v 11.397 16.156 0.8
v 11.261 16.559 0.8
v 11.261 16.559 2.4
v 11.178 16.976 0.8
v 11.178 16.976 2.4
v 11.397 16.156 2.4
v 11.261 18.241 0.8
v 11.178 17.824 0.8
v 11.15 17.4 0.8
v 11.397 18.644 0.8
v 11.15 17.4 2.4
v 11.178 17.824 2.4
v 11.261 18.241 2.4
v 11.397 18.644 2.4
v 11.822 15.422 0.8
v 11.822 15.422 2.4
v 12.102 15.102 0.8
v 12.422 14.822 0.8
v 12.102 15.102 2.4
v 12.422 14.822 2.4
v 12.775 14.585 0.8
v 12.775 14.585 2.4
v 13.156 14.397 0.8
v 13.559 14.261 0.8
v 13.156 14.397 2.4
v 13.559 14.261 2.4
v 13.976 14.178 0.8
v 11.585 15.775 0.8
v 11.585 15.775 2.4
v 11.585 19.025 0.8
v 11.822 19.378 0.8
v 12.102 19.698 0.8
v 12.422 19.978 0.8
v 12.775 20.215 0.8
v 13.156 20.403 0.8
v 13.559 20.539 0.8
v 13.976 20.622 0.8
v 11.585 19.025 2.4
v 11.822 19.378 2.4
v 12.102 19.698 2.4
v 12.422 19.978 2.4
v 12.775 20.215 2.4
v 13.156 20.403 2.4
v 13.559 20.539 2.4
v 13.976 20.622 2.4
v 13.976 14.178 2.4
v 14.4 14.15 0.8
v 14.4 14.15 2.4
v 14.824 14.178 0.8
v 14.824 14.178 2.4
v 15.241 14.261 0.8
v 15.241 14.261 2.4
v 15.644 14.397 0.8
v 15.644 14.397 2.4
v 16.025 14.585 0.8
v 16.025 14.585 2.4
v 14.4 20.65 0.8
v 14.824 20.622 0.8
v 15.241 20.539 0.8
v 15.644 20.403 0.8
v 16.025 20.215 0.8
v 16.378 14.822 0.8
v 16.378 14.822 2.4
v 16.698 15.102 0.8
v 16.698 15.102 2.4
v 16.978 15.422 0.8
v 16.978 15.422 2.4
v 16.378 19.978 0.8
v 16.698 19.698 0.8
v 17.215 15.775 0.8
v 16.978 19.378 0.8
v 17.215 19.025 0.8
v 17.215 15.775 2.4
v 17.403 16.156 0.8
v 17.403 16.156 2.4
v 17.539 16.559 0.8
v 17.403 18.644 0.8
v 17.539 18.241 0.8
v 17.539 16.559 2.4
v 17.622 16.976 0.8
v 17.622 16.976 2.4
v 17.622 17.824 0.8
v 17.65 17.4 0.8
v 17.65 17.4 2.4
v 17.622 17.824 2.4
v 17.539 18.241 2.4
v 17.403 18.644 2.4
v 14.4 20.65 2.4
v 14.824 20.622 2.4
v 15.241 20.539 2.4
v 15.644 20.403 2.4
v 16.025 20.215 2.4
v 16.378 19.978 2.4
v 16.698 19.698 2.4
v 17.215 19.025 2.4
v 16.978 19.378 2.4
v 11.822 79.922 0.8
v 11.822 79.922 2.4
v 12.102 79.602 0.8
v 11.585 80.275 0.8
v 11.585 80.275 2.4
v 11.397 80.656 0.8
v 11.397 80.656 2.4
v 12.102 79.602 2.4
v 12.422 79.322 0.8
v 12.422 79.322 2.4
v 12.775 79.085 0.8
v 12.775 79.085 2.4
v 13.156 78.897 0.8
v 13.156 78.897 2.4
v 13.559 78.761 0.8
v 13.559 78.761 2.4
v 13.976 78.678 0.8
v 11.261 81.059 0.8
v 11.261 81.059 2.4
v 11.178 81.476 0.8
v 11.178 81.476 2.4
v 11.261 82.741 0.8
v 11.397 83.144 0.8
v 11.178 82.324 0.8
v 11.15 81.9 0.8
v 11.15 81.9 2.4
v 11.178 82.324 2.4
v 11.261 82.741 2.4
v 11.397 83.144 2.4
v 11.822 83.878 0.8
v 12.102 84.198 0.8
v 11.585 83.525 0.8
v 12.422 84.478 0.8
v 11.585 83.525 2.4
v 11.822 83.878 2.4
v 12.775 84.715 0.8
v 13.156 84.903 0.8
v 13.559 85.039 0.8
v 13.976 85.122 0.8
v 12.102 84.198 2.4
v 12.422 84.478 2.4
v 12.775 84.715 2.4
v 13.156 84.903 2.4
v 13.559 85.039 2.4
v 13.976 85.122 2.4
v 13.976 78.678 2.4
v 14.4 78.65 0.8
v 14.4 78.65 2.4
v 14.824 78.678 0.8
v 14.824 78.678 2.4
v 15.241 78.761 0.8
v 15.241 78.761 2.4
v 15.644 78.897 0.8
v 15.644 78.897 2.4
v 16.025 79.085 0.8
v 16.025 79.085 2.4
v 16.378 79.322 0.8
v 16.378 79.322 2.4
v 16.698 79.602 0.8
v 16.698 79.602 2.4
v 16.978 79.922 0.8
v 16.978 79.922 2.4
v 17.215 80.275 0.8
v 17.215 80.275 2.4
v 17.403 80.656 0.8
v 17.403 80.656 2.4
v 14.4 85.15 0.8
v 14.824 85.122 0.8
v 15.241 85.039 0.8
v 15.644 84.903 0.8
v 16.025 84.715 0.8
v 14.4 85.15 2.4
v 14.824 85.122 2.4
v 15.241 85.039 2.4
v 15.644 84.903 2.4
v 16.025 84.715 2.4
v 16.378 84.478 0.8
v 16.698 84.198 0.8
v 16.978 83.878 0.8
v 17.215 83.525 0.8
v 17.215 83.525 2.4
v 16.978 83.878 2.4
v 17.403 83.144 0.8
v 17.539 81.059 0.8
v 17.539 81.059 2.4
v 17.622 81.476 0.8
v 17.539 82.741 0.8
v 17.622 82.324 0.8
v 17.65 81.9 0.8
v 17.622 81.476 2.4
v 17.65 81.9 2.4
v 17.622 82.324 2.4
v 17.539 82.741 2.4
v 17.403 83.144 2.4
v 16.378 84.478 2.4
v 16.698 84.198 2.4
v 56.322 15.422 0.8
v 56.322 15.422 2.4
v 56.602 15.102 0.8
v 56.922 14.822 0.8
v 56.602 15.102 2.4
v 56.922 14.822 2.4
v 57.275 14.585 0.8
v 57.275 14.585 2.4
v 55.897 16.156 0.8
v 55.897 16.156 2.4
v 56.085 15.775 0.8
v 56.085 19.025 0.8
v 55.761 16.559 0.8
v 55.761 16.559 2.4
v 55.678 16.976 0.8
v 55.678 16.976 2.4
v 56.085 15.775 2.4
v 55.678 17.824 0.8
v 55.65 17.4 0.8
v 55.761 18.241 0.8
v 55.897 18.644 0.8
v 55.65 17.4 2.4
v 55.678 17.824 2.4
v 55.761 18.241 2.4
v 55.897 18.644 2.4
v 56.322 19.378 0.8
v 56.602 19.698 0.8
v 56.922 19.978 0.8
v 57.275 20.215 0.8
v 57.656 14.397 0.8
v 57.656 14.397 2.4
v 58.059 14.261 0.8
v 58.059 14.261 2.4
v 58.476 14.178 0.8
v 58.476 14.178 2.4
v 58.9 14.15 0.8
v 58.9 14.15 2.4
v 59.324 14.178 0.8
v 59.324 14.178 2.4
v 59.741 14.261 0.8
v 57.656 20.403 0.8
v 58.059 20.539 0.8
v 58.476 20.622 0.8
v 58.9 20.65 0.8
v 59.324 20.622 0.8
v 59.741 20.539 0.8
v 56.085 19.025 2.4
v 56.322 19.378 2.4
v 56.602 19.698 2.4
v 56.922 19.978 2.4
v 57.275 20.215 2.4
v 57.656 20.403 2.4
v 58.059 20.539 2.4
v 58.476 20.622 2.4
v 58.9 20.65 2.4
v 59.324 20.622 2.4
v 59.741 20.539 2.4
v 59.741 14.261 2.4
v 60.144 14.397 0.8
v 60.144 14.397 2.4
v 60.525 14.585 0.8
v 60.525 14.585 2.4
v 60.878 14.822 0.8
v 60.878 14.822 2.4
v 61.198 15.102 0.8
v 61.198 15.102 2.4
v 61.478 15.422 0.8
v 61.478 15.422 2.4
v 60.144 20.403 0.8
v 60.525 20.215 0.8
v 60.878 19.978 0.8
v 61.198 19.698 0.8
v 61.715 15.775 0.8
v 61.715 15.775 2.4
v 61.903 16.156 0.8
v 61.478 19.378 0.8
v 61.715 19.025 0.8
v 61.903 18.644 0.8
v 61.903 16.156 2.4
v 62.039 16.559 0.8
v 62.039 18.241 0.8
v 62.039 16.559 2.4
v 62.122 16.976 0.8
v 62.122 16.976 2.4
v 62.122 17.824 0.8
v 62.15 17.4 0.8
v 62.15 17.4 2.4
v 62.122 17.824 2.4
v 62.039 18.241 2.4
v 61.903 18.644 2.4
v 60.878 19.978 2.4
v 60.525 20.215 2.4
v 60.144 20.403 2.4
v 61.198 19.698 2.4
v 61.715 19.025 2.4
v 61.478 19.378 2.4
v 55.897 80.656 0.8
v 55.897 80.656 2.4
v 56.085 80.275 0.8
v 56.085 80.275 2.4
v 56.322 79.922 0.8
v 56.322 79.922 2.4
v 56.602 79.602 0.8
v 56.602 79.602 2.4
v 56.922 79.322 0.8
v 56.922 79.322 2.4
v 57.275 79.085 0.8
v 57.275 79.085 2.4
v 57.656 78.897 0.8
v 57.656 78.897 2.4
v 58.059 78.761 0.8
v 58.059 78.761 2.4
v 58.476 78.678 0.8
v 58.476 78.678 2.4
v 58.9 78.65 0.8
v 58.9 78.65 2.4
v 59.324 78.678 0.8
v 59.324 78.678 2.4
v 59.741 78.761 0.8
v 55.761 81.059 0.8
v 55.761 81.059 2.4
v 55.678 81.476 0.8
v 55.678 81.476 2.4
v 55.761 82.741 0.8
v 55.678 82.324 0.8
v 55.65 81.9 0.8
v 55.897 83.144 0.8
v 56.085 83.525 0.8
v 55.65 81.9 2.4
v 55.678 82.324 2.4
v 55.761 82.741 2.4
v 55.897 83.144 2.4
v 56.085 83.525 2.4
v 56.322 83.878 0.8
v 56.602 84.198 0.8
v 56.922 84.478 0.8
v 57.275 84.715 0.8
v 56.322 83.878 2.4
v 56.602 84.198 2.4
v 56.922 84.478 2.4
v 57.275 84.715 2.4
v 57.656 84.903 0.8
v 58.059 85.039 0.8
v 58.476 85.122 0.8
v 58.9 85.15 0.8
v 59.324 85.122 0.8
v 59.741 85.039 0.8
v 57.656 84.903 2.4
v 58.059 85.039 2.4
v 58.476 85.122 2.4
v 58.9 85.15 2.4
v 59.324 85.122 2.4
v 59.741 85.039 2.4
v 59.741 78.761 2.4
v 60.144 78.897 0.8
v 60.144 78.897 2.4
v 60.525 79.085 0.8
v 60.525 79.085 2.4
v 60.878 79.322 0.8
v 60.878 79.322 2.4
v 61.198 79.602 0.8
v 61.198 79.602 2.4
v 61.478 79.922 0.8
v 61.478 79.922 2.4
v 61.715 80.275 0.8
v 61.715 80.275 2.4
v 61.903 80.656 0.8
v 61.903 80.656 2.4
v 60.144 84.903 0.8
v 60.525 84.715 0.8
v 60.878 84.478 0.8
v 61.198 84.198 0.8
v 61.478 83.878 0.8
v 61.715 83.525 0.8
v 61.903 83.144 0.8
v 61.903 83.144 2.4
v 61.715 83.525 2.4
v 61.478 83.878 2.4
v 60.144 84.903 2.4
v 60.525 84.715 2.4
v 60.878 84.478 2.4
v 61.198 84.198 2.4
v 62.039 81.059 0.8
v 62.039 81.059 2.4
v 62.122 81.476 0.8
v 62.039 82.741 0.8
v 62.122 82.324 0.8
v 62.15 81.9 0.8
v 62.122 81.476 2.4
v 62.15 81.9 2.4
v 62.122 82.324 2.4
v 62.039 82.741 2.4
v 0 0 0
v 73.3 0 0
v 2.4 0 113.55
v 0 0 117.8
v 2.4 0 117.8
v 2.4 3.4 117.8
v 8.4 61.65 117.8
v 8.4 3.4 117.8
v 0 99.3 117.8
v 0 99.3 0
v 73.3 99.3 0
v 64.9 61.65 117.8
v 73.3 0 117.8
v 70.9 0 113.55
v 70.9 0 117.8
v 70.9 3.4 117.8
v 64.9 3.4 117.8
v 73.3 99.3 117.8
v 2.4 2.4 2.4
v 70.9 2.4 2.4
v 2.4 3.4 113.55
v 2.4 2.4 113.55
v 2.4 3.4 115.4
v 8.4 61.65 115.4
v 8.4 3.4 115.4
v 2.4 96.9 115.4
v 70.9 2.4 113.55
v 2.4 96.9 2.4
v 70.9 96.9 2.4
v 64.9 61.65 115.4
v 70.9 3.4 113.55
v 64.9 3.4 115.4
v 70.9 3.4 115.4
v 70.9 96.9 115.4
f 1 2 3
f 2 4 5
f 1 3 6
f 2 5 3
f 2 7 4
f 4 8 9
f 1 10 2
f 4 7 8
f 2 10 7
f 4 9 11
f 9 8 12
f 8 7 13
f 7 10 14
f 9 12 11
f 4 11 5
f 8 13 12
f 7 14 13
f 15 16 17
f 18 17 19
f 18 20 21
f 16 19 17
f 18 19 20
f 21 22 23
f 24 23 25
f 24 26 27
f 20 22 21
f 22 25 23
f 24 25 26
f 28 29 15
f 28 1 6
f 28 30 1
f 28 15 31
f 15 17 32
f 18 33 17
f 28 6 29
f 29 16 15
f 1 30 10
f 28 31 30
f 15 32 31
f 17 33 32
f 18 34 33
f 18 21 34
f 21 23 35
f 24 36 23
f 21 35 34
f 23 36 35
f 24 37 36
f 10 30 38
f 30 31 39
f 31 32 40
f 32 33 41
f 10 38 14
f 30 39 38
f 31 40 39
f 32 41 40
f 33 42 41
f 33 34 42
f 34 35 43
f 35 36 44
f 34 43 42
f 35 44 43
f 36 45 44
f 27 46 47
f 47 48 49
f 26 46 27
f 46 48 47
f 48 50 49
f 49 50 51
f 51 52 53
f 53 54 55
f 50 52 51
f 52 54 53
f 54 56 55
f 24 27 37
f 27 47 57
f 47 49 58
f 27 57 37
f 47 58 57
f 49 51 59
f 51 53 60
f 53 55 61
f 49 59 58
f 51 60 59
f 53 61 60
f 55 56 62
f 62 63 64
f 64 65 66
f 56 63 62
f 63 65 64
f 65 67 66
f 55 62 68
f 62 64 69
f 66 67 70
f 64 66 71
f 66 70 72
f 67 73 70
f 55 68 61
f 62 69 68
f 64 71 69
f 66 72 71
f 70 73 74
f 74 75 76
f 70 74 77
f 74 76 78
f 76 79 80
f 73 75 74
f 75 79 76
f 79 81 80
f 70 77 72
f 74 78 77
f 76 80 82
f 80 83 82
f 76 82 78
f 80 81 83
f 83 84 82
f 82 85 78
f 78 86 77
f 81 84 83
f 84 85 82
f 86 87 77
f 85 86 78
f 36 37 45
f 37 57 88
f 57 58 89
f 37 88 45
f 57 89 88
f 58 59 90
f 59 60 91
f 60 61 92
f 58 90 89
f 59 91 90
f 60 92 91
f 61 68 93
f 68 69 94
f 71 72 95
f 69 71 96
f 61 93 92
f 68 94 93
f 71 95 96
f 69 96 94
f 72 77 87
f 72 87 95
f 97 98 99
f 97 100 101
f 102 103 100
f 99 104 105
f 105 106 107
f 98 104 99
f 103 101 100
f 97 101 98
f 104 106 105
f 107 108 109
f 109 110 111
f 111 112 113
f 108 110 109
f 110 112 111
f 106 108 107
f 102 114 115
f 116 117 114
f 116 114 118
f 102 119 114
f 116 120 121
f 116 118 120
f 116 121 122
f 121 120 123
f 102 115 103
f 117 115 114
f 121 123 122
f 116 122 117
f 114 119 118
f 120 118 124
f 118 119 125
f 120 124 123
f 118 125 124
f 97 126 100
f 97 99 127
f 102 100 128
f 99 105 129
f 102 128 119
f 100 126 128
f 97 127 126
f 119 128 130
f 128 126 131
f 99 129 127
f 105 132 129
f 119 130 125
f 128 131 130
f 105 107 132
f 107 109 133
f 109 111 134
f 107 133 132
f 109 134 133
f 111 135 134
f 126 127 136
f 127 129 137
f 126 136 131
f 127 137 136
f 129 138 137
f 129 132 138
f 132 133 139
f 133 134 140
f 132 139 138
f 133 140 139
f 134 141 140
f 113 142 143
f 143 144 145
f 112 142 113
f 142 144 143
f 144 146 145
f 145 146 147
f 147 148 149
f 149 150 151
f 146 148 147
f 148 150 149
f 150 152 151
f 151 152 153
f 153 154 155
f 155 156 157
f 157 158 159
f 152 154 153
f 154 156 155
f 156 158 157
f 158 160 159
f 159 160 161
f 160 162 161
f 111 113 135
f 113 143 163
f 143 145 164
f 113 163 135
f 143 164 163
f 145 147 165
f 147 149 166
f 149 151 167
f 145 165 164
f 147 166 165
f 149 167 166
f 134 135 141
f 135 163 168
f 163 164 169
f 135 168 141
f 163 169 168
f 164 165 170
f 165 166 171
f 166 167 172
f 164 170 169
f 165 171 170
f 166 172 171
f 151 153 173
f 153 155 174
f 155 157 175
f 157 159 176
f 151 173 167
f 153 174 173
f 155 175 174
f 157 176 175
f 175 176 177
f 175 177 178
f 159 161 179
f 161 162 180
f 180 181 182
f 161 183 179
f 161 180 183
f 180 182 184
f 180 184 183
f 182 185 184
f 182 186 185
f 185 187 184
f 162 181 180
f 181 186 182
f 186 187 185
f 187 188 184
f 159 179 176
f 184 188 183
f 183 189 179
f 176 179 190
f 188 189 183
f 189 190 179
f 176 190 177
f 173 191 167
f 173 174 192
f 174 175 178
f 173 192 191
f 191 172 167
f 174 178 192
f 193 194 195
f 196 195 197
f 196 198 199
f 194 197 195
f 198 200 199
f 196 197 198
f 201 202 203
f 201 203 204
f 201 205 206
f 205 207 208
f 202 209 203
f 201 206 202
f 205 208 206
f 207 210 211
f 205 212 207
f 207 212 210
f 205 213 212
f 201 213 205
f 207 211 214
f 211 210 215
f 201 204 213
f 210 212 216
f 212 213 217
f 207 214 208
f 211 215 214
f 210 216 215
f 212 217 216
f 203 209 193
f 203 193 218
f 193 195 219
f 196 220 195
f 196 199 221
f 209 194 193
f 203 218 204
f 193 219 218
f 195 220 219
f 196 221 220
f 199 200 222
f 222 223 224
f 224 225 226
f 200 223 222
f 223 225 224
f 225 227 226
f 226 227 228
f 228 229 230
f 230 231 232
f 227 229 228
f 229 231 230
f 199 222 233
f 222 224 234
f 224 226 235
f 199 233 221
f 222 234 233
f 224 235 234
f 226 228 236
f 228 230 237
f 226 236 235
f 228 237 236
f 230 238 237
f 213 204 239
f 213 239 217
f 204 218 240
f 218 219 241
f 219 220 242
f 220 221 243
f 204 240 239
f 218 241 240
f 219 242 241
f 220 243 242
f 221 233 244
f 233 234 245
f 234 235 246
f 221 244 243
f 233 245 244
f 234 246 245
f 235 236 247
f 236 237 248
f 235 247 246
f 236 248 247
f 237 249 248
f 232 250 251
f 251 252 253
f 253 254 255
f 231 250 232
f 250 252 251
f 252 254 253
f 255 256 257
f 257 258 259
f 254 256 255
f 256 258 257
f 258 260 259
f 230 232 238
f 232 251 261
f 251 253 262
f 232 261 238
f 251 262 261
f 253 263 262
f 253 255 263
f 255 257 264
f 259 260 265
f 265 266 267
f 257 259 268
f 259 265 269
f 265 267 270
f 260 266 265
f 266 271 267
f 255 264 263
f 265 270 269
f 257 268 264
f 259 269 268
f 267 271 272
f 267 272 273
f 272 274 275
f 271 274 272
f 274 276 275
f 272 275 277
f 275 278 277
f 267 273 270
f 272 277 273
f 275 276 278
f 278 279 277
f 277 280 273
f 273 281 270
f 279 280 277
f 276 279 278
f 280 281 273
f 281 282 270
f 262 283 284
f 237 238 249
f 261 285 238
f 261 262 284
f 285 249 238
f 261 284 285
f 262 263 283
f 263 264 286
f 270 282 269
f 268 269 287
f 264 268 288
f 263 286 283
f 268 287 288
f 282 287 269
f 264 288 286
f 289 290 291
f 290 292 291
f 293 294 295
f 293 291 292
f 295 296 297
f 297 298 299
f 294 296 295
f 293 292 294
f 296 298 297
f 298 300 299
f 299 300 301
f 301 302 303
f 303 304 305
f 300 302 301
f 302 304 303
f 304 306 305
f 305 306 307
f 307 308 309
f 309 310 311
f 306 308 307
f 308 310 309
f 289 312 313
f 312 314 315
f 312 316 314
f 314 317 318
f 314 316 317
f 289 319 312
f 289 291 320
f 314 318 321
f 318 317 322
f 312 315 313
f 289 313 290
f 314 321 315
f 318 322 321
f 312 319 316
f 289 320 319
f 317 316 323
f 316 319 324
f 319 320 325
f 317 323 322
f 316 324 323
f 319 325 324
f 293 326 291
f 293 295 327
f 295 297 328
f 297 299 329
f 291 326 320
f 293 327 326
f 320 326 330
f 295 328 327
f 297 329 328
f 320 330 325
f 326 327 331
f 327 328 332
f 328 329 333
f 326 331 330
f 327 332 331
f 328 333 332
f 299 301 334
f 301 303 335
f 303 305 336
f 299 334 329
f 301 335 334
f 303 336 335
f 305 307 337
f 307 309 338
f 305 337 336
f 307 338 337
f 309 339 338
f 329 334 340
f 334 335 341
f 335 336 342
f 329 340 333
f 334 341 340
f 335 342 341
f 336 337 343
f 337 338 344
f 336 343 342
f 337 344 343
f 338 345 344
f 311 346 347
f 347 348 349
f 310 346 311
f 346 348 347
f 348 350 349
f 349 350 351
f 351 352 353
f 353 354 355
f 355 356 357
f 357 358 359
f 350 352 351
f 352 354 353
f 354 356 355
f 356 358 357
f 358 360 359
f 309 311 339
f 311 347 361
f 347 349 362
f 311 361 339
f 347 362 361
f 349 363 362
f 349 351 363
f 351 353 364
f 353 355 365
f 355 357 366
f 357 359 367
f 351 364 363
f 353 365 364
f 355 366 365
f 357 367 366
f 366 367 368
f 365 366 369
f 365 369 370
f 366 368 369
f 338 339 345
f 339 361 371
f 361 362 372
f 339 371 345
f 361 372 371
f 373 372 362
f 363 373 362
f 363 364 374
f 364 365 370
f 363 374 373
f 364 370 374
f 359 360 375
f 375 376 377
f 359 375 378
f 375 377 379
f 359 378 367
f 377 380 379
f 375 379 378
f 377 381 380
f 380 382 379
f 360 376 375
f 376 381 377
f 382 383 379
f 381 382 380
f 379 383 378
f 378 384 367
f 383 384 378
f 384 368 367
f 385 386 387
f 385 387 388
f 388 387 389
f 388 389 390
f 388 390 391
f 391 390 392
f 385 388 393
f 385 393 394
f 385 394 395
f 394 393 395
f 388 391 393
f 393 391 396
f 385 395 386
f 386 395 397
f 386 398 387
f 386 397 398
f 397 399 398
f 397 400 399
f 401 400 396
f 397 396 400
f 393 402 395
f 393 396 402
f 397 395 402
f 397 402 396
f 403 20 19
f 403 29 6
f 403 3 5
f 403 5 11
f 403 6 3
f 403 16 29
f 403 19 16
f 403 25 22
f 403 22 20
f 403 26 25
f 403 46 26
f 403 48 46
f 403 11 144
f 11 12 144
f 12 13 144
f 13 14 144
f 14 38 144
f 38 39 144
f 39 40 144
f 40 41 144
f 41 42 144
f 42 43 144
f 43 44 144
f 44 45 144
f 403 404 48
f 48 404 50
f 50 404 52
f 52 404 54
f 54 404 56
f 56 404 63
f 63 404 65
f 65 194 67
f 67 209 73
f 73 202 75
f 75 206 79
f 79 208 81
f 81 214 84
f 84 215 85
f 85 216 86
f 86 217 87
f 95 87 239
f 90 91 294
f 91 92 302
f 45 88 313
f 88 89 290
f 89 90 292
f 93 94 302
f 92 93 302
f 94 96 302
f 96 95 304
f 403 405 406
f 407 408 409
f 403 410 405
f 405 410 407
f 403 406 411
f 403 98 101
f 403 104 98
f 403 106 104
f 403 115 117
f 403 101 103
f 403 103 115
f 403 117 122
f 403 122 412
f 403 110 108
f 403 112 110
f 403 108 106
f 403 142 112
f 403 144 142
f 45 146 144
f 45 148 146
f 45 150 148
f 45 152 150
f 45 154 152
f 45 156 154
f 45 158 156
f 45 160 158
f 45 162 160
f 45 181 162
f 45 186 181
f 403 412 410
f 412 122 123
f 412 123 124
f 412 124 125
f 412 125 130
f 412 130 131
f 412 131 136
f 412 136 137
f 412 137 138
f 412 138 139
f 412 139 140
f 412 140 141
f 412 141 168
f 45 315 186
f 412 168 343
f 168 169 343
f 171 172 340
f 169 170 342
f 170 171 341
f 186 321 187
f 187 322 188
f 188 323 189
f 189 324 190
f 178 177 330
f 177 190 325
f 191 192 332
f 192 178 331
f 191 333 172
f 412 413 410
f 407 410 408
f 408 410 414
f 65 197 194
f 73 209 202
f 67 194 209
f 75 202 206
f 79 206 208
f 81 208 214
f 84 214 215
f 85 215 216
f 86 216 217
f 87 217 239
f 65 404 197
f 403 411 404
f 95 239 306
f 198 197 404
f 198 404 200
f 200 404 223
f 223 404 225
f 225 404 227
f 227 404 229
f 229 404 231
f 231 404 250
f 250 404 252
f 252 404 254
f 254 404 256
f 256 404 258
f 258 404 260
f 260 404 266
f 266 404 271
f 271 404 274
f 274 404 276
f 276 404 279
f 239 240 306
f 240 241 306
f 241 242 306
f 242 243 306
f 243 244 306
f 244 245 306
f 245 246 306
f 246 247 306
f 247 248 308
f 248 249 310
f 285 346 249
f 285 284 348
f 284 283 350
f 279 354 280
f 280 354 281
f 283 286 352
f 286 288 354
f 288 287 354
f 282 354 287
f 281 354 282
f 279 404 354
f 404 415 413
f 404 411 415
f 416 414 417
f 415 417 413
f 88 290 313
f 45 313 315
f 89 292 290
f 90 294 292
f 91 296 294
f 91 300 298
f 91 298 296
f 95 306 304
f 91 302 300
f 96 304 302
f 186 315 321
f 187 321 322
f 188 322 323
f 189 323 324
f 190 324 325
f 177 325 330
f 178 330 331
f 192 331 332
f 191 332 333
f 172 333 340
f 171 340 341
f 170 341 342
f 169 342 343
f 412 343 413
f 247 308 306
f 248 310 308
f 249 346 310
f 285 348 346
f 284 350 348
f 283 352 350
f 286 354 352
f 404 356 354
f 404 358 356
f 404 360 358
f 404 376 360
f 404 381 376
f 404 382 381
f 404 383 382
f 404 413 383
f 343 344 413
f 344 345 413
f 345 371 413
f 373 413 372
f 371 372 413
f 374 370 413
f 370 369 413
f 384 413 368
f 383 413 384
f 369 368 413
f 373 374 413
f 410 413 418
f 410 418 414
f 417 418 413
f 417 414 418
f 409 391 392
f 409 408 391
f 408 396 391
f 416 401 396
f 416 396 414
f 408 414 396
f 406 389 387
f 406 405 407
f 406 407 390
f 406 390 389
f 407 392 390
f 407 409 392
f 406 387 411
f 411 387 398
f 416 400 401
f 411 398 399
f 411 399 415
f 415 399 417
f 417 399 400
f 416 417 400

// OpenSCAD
// Deck box: a card magazine for the AI's face-up deck (README Step 3, goal doc section M).
// A follower plate on four springs pushes the stack up against the lid (rear) and two side lips (front).
// The front wall stops exactly one card below the lips, so the magnet can slide out the TOP card only:
// the card under it, even if its steel disc is pulled along, hits the front wall.
// Two prints: the box, and the follower plate (set `part`). Springs: four from the hardware-store
// assortment that fit `spring_d` and are compressed by a full deck. Units: mm.

part        = "box";   // "box" or "follower"
card_w      = 66.5;    // double-sleeved card, measure yours
card_l      = 92.5;
card_t      = 1.6;     // one sleeved card with its #10 zinc washer: measure 10 and divide
slot_play   = 0.25;    // the exit slot = one card + this
deck_n      = 60;
clear       = 1.0;     // around the stack
wall        = 2.4;
floor_t     = 2.4;
lip_w       = 6;       // side lips holding the top card down at the front
magnet_r    = 10;      // the 20 mm magnet
// The open front strip must reach the washer at the card's CENTRE plus the magnet's radius and 2 mm of play, or the magnet cannot sit on it
// (the first version covered the rear 62 % with the lid, so the strip ended 38 mm from the front and the washer is 49.6 mm back:
// found by hardware/gantry/fit_check.py on 2026-10-08). The lid now covers only what is behind that.
lid_frac    = 1 - (clear + card_l / 2 + magnet_r + 2) / (card_l + 2 * clear);
spring_d    = 6.5;     // post holes for the springs
follower_t  = 3;
spring_room = 14;      // springs fully compressed under a full deck, plus the follower
$fn = 48;

in_w = card_w + 2 * clear;
in_l = card_l + 2 * clear;
stack_h = deck_n * card_t;
H = floor_t + spring_room + follower_t + stack_h;          // the lid's underside
front_h = H - (card_t + slot_play);                          // the exit slot under the lips

module box() {
    difference() {
        cube([in_w + 2 * wall, in_l + 2 * wall, H + wall]);
        translate([wall, wall, floor_t]) cube([in_w, in_l, H - floor_t]);                    // the well, up to the lid
        translate([wall + lip_w, -1, H - 0.01])                                                // open front strip (top):
            cube([in_w - 2 * lip_w, wall + 1 + in_l * (1 - lid_frac), wall + 1]);              // where the magnet lands
        translate([wall, -1, front_h]) cube([in_w, wall + 2, H]);                               // exit slot, front
        for (x = [wall + 12, wall + in_w - 12], y = [wall + 15, wall + in_l - 15])            // spring sockets
            translate([x, y, 0.8]) cylinder(d = spring_d, h = floor_t);
    }
}

module follower() {
    difference() {
        cube([in_w - 1, in_l - 1, follower_t]);
        for (x = [12, in_w - 13], y = [15, in_l - 16]) translate([x, y, -0.01]) cylinder(d = spring_d, h = 1.2);
    }
}

if (part == "box") box(); else follower();
